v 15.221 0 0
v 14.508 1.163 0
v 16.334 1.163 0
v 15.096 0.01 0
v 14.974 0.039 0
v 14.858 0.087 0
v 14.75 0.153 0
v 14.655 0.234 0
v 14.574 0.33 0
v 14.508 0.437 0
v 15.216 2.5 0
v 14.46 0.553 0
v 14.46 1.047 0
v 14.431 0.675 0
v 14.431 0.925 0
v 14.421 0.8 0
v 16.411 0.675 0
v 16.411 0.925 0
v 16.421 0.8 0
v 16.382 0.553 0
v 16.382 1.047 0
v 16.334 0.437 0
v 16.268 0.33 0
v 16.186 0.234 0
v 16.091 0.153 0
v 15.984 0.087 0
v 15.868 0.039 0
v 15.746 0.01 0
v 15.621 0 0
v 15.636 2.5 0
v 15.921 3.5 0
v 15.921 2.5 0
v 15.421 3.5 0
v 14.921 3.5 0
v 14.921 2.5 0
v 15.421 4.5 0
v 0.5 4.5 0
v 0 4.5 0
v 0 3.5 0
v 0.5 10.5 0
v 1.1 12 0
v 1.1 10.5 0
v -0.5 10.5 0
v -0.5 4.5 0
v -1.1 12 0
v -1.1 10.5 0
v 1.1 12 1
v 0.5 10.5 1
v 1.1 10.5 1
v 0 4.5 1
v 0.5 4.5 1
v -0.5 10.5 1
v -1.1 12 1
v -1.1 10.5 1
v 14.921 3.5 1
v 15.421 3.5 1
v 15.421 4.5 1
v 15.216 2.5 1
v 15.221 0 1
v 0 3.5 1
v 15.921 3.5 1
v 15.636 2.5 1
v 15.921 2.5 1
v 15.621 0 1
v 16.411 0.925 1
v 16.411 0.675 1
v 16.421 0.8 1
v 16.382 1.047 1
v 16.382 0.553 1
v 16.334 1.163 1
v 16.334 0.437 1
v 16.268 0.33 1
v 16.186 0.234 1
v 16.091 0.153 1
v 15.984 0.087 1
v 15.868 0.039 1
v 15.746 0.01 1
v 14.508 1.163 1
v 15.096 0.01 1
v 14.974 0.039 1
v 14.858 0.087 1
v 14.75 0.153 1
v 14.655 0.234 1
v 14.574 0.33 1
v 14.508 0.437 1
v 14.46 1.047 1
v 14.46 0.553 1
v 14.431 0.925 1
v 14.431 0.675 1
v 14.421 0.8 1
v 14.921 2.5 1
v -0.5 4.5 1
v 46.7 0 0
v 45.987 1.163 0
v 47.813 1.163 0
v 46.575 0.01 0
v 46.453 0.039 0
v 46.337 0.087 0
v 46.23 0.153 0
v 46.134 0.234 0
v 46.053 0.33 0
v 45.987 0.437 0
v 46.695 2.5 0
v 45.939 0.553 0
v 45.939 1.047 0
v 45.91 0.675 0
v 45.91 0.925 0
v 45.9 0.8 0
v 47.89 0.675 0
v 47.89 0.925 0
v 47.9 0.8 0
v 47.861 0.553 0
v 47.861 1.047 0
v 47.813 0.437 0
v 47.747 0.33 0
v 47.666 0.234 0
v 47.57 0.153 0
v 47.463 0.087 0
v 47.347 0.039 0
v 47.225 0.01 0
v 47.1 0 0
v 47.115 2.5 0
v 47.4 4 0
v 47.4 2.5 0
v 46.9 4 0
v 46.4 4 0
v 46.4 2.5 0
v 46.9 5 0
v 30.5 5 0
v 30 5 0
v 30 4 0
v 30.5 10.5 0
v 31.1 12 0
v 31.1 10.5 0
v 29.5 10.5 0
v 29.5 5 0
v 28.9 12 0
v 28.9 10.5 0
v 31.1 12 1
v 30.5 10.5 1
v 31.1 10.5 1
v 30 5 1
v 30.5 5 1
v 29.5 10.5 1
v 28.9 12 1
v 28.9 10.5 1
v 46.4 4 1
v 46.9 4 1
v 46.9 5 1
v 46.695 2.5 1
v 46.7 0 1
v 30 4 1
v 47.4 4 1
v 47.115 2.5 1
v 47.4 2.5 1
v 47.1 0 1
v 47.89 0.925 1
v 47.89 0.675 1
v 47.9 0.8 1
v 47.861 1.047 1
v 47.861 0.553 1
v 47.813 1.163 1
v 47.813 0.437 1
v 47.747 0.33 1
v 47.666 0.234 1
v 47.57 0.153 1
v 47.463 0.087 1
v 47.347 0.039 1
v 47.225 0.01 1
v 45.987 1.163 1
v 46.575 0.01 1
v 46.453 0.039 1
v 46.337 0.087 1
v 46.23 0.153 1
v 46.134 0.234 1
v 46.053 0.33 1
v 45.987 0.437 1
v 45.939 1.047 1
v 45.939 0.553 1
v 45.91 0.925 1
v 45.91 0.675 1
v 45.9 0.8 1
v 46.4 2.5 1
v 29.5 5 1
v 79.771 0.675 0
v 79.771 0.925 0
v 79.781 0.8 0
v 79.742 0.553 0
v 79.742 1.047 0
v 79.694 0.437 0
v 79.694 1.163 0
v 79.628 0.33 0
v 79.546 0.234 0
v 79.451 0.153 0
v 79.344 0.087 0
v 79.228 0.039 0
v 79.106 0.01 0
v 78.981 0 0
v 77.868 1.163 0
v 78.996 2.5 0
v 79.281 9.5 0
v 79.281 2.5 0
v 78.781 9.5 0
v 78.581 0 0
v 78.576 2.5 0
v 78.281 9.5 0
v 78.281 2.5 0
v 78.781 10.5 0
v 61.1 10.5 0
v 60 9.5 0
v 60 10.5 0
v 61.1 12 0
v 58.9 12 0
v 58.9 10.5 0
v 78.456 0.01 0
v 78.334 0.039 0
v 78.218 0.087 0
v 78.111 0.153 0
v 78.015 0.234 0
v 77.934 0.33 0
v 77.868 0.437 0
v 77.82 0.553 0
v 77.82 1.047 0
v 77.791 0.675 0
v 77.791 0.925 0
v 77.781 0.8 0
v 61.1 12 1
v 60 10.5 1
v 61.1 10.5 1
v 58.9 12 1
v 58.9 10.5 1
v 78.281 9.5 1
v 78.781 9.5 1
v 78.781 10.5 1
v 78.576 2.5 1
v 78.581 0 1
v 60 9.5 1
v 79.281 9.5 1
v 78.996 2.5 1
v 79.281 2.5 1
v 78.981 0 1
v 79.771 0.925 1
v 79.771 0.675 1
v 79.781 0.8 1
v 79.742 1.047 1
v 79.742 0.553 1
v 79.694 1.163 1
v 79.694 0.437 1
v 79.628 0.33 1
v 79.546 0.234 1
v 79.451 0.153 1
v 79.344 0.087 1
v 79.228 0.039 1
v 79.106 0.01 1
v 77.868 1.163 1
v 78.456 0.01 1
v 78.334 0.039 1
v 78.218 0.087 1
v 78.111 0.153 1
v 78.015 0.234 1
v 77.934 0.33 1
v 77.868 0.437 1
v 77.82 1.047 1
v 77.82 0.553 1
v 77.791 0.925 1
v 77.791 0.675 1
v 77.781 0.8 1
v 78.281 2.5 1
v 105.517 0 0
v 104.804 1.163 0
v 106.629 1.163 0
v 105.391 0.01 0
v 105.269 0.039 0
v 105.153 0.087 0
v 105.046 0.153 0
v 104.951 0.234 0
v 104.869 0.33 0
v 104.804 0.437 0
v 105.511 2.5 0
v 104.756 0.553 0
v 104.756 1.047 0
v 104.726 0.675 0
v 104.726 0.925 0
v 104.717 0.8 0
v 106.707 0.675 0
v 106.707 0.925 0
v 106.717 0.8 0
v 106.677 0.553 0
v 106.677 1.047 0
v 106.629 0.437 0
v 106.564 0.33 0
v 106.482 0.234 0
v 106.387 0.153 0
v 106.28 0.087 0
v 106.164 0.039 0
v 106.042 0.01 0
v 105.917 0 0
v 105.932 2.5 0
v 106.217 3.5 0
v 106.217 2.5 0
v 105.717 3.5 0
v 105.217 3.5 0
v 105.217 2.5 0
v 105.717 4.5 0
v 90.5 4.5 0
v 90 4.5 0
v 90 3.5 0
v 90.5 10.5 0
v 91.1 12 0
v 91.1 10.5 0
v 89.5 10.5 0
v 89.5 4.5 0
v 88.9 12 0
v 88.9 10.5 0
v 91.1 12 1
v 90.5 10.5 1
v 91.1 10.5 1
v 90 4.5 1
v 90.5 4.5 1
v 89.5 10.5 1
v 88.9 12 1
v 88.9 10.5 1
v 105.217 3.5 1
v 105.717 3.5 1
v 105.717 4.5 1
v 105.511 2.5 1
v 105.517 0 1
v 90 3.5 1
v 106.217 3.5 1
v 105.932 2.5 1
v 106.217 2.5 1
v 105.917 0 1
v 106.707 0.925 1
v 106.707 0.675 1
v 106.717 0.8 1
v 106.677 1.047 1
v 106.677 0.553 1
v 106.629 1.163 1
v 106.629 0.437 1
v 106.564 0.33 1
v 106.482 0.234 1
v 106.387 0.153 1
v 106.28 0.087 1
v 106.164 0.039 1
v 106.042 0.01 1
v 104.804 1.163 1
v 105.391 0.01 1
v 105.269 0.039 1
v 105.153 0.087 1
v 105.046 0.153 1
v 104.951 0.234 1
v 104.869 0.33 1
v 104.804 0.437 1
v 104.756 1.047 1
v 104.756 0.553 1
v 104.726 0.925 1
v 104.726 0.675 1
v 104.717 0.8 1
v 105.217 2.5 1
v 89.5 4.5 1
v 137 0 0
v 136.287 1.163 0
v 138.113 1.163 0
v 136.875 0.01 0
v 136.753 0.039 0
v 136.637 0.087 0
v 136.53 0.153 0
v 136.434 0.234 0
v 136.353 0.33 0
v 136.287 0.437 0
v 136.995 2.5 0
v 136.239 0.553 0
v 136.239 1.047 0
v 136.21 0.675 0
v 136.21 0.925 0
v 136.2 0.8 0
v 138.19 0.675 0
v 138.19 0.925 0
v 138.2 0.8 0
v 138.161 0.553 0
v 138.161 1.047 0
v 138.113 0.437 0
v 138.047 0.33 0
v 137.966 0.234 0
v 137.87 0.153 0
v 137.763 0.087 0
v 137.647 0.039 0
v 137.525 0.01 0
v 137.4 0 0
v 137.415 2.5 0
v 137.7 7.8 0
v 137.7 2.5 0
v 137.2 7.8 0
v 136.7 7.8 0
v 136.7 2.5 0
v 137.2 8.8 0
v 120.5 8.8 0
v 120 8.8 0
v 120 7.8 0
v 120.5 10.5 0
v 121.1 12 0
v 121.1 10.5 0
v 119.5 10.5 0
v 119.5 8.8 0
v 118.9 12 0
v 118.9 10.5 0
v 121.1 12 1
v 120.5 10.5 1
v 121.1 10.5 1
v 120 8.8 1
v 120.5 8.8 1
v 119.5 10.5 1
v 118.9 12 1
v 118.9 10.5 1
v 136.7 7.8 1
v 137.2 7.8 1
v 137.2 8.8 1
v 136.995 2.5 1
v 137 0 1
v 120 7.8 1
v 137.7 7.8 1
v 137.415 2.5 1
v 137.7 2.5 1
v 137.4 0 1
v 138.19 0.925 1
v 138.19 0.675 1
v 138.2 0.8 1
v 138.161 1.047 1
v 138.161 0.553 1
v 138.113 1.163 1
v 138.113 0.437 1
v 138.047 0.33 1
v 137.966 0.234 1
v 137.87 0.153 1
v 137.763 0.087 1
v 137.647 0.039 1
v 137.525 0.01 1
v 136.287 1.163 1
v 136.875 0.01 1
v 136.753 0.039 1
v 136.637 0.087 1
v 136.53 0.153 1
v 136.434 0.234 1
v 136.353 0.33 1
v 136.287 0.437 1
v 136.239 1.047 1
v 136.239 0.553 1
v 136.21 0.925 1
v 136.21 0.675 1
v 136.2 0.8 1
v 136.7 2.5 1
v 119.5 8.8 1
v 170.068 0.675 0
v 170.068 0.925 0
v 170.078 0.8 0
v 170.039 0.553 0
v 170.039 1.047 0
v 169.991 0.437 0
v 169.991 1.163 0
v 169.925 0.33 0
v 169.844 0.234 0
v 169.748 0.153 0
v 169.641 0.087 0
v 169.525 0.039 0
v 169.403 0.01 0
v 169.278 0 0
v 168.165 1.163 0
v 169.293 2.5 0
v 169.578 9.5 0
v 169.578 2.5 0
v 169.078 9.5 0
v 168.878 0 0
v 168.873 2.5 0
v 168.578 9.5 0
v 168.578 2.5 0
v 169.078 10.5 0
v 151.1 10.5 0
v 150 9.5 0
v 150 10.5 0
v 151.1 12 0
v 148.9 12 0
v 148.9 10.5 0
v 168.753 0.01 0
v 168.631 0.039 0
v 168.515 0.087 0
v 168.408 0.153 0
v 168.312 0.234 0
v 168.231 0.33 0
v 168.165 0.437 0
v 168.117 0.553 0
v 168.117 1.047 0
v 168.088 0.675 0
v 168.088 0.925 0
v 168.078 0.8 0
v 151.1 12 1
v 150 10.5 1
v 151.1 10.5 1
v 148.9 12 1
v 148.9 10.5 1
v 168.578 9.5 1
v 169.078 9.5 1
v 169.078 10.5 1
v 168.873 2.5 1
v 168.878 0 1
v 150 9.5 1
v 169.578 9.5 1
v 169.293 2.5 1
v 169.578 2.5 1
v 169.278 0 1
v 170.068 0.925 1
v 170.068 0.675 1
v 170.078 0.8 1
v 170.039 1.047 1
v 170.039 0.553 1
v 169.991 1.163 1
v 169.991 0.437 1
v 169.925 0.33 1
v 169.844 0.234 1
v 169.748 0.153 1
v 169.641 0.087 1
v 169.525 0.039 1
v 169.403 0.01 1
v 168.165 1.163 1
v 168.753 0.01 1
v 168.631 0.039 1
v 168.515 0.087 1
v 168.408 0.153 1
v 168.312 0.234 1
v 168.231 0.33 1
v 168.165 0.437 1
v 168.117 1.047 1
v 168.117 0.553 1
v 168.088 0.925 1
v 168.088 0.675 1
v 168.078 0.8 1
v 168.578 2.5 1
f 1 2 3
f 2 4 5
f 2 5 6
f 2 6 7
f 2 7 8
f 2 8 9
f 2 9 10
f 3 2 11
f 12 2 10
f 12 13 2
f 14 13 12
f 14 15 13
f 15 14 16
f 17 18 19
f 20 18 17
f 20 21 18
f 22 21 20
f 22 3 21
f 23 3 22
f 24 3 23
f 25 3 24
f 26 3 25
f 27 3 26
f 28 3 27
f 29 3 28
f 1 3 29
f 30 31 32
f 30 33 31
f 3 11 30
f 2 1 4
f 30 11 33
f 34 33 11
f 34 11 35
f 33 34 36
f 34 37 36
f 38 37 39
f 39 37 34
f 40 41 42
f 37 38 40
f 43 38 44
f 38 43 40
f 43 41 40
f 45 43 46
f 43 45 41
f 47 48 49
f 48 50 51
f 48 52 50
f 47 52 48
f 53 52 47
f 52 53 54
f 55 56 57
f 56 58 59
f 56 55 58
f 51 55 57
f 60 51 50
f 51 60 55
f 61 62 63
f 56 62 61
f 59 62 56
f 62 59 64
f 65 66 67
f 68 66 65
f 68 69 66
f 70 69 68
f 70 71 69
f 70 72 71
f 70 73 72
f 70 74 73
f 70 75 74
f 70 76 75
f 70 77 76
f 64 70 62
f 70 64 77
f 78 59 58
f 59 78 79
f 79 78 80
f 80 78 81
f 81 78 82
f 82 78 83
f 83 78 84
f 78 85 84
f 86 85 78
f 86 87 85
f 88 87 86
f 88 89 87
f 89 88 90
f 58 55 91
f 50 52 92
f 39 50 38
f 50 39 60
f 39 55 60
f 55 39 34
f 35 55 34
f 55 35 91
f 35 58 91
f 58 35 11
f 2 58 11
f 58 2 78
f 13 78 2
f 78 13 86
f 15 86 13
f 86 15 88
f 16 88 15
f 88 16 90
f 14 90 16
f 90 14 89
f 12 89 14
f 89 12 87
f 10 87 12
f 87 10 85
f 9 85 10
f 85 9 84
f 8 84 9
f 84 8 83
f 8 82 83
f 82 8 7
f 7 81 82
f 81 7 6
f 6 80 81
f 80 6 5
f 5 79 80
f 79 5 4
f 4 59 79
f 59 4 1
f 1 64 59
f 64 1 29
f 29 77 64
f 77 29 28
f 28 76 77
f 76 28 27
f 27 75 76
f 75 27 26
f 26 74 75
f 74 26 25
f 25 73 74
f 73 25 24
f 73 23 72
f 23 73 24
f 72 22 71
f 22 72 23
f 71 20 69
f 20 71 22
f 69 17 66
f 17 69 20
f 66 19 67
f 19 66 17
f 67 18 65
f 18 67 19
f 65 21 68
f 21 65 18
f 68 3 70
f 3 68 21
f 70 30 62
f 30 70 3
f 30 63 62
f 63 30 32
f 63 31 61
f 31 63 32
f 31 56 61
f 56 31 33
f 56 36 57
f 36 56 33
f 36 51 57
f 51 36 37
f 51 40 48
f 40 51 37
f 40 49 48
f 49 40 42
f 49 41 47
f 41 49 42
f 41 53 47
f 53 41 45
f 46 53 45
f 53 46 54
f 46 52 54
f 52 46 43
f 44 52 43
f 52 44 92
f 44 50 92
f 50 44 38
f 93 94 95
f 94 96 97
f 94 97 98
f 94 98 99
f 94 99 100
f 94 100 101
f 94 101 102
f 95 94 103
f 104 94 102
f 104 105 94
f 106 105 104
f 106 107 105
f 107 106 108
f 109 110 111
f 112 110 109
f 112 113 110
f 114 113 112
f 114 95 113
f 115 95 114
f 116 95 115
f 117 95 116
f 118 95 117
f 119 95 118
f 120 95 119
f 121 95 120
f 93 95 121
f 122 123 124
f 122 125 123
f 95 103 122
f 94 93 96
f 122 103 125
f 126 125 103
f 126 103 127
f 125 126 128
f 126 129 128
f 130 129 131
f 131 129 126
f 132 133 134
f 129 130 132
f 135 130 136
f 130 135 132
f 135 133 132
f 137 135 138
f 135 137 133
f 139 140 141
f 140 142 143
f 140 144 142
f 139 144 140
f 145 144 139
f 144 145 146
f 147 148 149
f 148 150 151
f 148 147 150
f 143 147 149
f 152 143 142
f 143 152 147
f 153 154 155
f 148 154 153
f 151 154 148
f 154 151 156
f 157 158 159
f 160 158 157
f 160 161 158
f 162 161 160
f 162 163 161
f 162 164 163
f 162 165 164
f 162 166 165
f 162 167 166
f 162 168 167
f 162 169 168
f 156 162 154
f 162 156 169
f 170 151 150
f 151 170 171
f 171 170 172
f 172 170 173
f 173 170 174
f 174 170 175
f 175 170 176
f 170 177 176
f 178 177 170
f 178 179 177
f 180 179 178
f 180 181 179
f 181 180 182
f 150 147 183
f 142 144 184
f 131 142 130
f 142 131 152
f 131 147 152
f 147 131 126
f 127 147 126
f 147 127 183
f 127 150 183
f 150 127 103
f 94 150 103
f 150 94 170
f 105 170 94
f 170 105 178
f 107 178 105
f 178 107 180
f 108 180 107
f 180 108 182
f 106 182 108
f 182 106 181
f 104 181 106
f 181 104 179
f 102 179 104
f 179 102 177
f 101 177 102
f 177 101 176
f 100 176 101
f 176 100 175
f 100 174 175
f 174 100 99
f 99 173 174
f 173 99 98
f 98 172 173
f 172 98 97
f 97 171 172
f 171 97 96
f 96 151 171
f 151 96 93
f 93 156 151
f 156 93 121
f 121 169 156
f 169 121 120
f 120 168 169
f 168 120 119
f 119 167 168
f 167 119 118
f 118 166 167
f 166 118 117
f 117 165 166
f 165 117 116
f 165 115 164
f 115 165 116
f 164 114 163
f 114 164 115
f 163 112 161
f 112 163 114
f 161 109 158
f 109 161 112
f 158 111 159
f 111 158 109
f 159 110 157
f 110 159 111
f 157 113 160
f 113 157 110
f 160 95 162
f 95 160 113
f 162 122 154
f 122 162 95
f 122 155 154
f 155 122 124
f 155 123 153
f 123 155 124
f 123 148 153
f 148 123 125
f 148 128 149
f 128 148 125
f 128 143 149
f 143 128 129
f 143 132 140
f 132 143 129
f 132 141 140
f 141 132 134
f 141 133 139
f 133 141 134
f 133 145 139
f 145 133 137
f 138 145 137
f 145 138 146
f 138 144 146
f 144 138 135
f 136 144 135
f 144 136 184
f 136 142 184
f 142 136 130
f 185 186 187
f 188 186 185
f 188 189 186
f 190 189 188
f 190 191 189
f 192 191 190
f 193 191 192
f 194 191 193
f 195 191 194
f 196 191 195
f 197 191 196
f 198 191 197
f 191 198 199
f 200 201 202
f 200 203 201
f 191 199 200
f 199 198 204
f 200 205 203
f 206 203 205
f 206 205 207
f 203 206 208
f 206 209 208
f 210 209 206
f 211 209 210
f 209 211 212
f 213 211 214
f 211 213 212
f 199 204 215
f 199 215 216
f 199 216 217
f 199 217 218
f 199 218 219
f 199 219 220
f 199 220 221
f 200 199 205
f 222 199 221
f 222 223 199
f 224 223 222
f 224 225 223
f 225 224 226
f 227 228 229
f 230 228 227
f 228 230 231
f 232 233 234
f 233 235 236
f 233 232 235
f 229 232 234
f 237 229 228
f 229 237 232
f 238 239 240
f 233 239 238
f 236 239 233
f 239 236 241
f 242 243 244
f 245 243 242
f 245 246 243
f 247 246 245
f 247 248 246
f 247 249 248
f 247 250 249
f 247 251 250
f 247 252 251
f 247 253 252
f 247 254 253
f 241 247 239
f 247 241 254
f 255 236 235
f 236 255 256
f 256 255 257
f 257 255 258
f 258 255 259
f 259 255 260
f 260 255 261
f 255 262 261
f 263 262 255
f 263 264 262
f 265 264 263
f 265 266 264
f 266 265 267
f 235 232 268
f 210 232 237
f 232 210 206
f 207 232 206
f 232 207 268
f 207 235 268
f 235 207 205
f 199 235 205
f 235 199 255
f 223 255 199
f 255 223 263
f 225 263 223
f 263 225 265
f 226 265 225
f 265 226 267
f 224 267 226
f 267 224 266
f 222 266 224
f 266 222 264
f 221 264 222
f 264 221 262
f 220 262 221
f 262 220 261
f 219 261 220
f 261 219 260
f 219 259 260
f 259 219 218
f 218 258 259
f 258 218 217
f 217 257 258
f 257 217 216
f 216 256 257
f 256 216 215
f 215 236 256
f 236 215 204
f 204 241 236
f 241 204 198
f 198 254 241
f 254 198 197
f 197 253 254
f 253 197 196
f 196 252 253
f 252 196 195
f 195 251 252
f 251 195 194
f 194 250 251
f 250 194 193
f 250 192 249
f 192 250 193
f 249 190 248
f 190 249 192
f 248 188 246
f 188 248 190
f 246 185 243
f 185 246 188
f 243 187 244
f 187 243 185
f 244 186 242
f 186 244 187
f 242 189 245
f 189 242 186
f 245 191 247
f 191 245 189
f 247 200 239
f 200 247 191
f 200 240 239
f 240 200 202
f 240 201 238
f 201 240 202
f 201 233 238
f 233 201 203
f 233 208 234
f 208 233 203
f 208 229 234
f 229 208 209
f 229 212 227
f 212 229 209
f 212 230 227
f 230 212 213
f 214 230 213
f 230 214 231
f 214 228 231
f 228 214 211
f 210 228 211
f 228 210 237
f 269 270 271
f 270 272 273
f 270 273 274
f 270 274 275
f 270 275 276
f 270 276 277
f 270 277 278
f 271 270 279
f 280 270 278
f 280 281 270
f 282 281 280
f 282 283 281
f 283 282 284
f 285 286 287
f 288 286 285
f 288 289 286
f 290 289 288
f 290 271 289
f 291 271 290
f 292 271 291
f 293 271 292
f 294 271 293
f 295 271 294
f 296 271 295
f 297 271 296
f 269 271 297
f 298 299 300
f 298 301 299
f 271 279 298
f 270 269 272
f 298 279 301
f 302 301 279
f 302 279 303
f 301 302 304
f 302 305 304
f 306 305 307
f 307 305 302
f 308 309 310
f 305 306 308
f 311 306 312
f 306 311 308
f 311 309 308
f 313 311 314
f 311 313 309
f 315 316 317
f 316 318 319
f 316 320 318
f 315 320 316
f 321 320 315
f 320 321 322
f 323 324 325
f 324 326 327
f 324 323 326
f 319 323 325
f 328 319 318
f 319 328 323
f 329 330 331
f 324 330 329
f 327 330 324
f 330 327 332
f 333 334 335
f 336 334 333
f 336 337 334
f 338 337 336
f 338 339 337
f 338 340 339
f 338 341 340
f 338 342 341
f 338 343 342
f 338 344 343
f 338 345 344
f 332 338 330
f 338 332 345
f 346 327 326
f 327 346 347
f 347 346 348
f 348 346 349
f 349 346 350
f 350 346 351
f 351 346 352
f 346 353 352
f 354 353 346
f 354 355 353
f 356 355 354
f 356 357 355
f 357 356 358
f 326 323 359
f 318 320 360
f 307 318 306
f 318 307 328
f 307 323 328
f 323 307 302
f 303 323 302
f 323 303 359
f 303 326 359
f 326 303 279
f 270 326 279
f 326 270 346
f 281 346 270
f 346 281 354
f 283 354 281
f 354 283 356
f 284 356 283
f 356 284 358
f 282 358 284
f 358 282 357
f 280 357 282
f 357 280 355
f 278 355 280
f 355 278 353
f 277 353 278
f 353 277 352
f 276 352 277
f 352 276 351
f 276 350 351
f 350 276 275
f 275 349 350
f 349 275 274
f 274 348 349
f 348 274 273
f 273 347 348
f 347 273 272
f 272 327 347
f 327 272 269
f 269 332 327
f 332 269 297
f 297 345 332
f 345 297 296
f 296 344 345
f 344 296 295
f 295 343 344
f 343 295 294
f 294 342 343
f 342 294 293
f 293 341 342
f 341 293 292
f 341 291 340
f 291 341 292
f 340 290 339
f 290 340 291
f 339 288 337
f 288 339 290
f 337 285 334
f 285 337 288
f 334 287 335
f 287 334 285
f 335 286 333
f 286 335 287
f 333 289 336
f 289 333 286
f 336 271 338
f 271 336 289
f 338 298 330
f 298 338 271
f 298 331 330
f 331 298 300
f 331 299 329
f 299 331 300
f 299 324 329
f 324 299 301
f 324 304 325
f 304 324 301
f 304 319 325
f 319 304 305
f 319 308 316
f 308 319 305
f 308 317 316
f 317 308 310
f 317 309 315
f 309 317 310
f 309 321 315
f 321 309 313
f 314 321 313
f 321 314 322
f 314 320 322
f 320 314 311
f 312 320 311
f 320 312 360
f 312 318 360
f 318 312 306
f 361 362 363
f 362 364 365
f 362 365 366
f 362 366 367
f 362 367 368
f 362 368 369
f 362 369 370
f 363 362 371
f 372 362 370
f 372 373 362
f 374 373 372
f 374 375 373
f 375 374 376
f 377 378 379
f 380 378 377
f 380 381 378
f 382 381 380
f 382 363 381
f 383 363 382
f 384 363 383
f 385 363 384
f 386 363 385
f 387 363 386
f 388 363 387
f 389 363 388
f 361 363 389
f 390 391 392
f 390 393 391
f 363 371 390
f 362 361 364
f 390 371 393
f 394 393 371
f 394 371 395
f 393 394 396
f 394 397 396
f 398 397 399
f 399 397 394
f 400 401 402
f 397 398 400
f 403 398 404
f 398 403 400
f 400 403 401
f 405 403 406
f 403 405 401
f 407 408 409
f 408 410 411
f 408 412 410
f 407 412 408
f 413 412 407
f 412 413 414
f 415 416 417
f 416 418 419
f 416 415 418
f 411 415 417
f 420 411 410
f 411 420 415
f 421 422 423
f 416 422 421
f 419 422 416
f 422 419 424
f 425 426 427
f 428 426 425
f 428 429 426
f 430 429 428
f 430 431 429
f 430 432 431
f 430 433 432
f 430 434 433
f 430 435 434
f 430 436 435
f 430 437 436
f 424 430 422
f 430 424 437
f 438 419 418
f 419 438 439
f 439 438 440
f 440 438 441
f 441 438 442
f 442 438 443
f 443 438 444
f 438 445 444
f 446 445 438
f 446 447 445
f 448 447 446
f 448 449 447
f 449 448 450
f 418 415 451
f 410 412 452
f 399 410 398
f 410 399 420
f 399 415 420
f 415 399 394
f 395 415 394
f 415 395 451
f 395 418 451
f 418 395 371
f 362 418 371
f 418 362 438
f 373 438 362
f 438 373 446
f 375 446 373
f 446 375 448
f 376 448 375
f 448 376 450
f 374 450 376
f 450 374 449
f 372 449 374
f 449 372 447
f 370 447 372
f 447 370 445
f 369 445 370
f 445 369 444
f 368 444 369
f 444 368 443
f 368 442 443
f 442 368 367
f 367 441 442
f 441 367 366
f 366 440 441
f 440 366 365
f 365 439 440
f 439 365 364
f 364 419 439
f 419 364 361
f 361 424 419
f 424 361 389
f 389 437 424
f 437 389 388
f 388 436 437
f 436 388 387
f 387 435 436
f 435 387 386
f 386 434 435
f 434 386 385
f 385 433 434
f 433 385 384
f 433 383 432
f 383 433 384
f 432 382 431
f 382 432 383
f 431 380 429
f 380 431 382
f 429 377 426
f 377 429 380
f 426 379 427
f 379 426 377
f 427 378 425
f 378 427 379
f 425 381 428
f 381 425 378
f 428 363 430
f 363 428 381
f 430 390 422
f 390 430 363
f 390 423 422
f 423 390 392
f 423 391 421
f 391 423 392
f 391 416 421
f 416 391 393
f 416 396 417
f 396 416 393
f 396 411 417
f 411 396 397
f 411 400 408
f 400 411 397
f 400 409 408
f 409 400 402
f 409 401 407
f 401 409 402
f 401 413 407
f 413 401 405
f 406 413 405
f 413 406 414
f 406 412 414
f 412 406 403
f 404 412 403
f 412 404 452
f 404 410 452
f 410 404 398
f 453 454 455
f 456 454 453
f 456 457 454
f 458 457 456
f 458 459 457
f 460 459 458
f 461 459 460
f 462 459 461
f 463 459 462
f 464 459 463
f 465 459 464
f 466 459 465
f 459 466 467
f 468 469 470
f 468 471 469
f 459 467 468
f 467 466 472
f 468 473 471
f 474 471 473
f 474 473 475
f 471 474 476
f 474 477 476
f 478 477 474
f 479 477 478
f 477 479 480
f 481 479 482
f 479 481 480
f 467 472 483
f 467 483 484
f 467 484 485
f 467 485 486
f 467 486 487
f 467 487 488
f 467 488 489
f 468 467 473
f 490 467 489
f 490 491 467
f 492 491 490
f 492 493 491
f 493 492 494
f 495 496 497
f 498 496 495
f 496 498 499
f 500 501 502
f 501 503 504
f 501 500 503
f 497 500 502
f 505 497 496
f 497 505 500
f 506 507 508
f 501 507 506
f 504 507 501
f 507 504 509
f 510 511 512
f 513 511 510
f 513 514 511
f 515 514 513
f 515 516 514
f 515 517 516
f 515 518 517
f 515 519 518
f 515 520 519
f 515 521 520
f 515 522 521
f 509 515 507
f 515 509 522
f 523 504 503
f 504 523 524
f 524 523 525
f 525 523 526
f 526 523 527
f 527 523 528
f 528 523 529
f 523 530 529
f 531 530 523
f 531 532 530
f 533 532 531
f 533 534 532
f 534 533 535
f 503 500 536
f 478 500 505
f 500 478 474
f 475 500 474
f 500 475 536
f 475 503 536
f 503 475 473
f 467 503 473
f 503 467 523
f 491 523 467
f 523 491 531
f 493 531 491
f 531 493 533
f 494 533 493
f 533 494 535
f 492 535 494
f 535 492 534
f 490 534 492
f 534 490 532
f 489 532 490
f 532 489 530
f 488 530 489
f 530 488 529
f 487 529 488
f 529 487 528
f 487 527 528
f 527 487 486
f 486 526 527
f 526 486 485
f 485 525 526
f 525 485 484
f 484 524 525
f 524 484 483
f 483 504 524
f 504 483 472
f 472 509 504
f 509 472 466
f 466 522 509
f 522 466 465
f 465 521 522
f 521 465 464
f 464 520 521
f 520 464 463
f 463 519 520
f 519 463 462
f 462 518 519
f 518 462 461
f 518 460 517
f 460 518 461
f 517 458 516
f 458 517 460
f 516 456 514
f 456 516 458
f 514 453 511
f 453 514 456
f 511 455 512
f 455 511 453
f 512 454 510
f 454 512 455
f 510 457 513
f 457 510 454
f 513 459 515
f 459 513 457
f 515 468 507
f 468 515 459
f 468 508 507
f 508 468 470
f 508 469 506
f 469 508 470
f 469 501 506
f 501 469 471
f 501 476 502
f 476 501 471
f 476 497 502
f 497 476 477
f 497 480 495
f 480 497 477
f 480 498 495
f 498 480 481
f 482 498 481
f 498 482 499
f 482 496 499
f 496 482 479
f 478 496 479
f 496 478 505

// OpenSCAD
// =========================================================
// BRAILLIX LINKAGE SET — Laser-Cut Metal Cranks
// Revision 3.0 — Inline Feet (Phase-Shift Fix)
// Updated 2026-05-06
//
// NOT 3D-printed. Export as DXF for laser cutting.
// Material: 1mm stainless steel or 1mm aluminium sheet.
// Post-process: sand foot tip smooth, lubricate with silicone grease.
//
// --- CRITICAL FIX FROM v2.0 (Audit 4.1) ---
// v2.0 BUG: linkages were rotated by atan2(dot_y, dot_x) — each foot
//   hit the cam at a DIFFERENT angle (dot 0 at 137deg, dot 4 at 0deg, etc).
//   At 5.625deg/character, this scrambled the Braille output completely.
//
// v3.0 FIX: All 6 feet now land at Y=0 on the cam disc (same angular
//   position). This is achieved by computing arm_span and assembly angle
//   so that:
//     - Nub lands at (dot_x, dot_y) — correct Braille position
//     - Foot lands at (track_r, 0)  — all feet aligned on Y=0 axis
//
// Key equations:
//   arm_span(d) = sqrt((track_r(d) - dot_x(d))^2 + dot_y(d)^2)
//   asm_ang(d)  = atan2(-dot_y(d), track_r(d) - dot_x(d))
//
// Arm heights re-staggered for collision safety (dots 1 & 4 critical pair):
//   dot 1 arm_y = 4.0mm, dot 4 arm_y = 7.8mm
//   Gap = 7.8 - 4.0 - 1.0(arm_h) = 2.8mm static
//   Worst case (cam bump): 2.8 - 0.8 = 2.0mm free — safe, no collision
//
// --- VERIFIED STACK (z from outer box bottom, v4.0) ---
//   z=45.0  cam flat surface  -> foot bottom (nub flush = dot DOWN)
//   z=45.8  cam bump top      -> foot bottom (nub 0.8mm proud = dot UP)
//   z=57.0  top plate top surface
//   total_h = 57.0 - 45.0 = 12.0mm (unchanged)
// =========================================================

// --- 1. PARAMETERS ---

thickness     = 1.0;    // Sheet metal thickness (extrusion depth for DXF)
foot_w        = 2.0;    // Foot width — straddles cam track (1.6mm wide), 0.2mm overhang each side
foot_len      = 2.5;    // Foot contact patch length
foot_radius   = 0.8;    // Rounded foot tip (reduces cam surface wear)
nub_w         = 2.2;    // Nub width — widened for 2mm bearing ball cup (was 1.2mm)
nub_len       = 2.0;    // Nub length (radial extent)
nub_h         = 1.5;    // Nub protrusion above arm/upper-riser top
// BEARING BALL: Glue 2mm stainless steel bearing ball into laser-cut cup on nub top.
// Cup: 2.2mm wide x 0.8mm deep hemispherical recess on nub tip (post-process with
// ball-nose endmill or laser etch). Ball protrudes ~1mm above plate top when dot is UP.
arm_h         = 1.0;    // Horizontal arm thickness
total_h       = 12.0;   // Total height: foot bottom to nub top (matches corrected stack)

// Cam geometry (must match braille_cam.scad exactly)
track_width   = 1.6;
track_gap     = 0.1;
inner_radius  = 12.0;    // Was 8.0 — matches braille_cam.scad v5.1

// Braille dot positions (must match top_plate.scad)
col_spacing   = 4.8;    // Left column at x=-2.4, right at x=+2.4
row_spacing   = 2.6;    // Rows at y=+2.6, 0, -2.6

// Track centre radius for track index t
function track_r(t) = inner_radius + t * (track_width + track_gap) + track_width / 2;
//  t=0: 8.85mm   t=1: 10.55mm   t=2: 12.25mm
//  t=3: 13.95mm  t=4: 15.65mm   t=5: 17.35mm

function dot_x(dot) = (dot < 3) ? -col_spacing/2 : col_spacing/2;
function dot_y(dot) = (dot == 0 || dot == 3) ?  row_spacing :
                      (dot == 1 || dot == 4) ?  0 :
                                                -row_spacing;

// --- INLINE FEET GEOMETRY ---
// arm_span: horizontal distance from nub (at dot position) to foot (at cam track)
// After assembly transform, foot lands at world (track_r, 0) and nub at (dot_x, dot_y)
function arm_span(d) = sqrt(pow(track_r(d) - dot_x(d), 2) + pow(dot_y(d), 2));

// Assembly angle: rotate linkage so foot points from nub toward (track_r, 0)
function asm_ang(d) = atan2(-dot_y(d), track_r(d) - dot_x(d));

// Arm Y position from foot bottom — per-dot stagger for collision safety
// Each dot gets its own arm_y to avoid collision between overlapping arms.
// Critical pair: dots 1 and 4 (both at world Y=0, arms overlap in X)
//   dot 1: arm_y=4.0, dot 4: arm_y=7.8 -> gap=7.8-4.0-1.0=2.8mm static, 2.0mm with bump
// FIX (Audit 2, 2026-05-15): was grouped as pairs — dots 1&4 both got 5.5 = collision!
function arm_y(d) = (d == 0) ? 3.5 :
                    (d == 1) ? 4.0 :
                    (d == 2) ? 9.5 :
                    (d == 3) ? 3.5 :
                    (d == 4) ? 7.8 :
                               9.5;

// Derived heights
function lower_riser_h(d) = arm_y(d) - foot_len;
function upper_riser_h(d) = total_h - arm_y(d) - arm_h - nub_h;

$fn = 40;

// --- 2. MODULES ---

// 2D profile of one linkage in its LOCAL coordinate frame.
// Local axes: X = arm direction (0=nub end, span=foot end), Y = vertical (up).
// Extruded to 'thickness' in Z for laser-cut preview.
//
// In assembly, each linkage is:
//   1. Extruded to thickness
//   2. Rotated by asm_ang(d) around Z
//   3. Translated to (dot_x(d), dot_y(d), 0)
// Result: nub at world (dot_x, dot_y), foot at world (track_r, 0)

module linkage_2d_v3(dot) {
    span = arm_span(dot);
    ay   = arm_y(dot);
    lr   = lower_riser_h(dot);
    ur   = upper_riser_h(dot);

    union() {
        // A. Foot — rounded rectangle at span end (cam/outer side)
        translate([span - foot_w/2, 0])
            hull() {
                translate([foot_radius, foot_radius])
                    circle(r=foot_radius);
                translate([foot_w - foot_radius, foot_radius])
                    circle(r=foot_radius);
                translate([foot_radius, foot_len])
                    square([foot_w - 2*foot_radius, 0.01]);
                translate([foot_w - foot_radius, foot_len])
                    square([0.01, 0.01]);
            }

        // B. Lower riser — from foot top up to arm bottom (at span end)
        if(lr > 0.01)
            translate([span - thickness/2, foot_len])
                square([thickness, lr]);

        // C. Horizontal arm — spans from X=0 (nub end) to X=span (foot end)
        translate([0, ay])
            square([span, arm_h]);

        // D. Upper riser — from arm top up to nub bottom (at X=0, nub end)
        if(ur > 0.01)
            translate([-thickness/2, ay + arm_h])
                square([thickness, ur]);

        // E. Nub — rectangular tab at top, centred on dot origin (X=0)
        translate([-nub_w/2, total_h - nub_h])
            square([nub_w, nub_h]);
    }
}

module linkage_3d_v3(dot) {
    linear_extrude(height=thickness)
        linkage_2d_v3(dot);
}

// --- 3. GENERATE ALL 6 LINKAGES ---
// Laid flat side-by-side for DXF export. 30mm gap between each.
// For assembly preview: use the commented section below instead.

spacing = 30; // mm between linkage origins on DXF sheet

for(dot = [0:5]) {
    translate([dot * spacing, 0, 0])
        linkage_3d_v3(dot);
}

// --- ASSEMBLY PREVIEW (comment out flat layout above, uncomment here) ---
// All 6 feet should cluster at Y=0 on the cam. Nubs at their Braille dot positions.
// for(dot = [0:5]) {
//     ang = asm_ang(dot);
//     color((dot < 3) ? "silver" : "lightgray")
//     translate([dot_x(dot), dot_y(dot), 0])
//     rotate([0, 0, ang])
//         linkage_3d_v3(dot);
// }

// --- 4. REFERENCE TABLE ---
// Dot | Track | Track r | Dot pos      | arm_y | arm_span | asm_ang  | lr   | ur
//  0  |   0   |  8.85   | (-2.4, +2.6) |  3.5  |  11.55   | -13.0deg |  1.0 |  6.0
//  1  |   1   | 10.55   | (-2.4,  0.0) |  4.0  |  12.95   | 180.0deg |  1.5 |  5.5
//  2  |   2   | 12.25   | (-2.4, -2.6) |  9.5  |  14.88   | +10.1deg |  7.0 |  0.0
//  3  |   3   | 13.95   | (+2.4, +2.6) |  3.5  |  11.84   | -12.7deg |  1.0 |  6.0
//  4  |   4   | 15.65   | (+2.4,  0.0) |  7.8  |  13.25   |   0.0deg |  5.3 |  1.7
//  5  |   5   | 17.35   | (+2.4, -2.6) |  9.5  |  15.18   |  +9.9deg |  7.0 |  0.0
//
// Collision clearance (dots 1 & 4 — critical pair, both at world Y=0):
//   Static gap:  7.8 - 4.0 - 1.0 = 2.8mm
//   With bump:   2.8 - 0.8 = 2.0mm free  -- SAFE
